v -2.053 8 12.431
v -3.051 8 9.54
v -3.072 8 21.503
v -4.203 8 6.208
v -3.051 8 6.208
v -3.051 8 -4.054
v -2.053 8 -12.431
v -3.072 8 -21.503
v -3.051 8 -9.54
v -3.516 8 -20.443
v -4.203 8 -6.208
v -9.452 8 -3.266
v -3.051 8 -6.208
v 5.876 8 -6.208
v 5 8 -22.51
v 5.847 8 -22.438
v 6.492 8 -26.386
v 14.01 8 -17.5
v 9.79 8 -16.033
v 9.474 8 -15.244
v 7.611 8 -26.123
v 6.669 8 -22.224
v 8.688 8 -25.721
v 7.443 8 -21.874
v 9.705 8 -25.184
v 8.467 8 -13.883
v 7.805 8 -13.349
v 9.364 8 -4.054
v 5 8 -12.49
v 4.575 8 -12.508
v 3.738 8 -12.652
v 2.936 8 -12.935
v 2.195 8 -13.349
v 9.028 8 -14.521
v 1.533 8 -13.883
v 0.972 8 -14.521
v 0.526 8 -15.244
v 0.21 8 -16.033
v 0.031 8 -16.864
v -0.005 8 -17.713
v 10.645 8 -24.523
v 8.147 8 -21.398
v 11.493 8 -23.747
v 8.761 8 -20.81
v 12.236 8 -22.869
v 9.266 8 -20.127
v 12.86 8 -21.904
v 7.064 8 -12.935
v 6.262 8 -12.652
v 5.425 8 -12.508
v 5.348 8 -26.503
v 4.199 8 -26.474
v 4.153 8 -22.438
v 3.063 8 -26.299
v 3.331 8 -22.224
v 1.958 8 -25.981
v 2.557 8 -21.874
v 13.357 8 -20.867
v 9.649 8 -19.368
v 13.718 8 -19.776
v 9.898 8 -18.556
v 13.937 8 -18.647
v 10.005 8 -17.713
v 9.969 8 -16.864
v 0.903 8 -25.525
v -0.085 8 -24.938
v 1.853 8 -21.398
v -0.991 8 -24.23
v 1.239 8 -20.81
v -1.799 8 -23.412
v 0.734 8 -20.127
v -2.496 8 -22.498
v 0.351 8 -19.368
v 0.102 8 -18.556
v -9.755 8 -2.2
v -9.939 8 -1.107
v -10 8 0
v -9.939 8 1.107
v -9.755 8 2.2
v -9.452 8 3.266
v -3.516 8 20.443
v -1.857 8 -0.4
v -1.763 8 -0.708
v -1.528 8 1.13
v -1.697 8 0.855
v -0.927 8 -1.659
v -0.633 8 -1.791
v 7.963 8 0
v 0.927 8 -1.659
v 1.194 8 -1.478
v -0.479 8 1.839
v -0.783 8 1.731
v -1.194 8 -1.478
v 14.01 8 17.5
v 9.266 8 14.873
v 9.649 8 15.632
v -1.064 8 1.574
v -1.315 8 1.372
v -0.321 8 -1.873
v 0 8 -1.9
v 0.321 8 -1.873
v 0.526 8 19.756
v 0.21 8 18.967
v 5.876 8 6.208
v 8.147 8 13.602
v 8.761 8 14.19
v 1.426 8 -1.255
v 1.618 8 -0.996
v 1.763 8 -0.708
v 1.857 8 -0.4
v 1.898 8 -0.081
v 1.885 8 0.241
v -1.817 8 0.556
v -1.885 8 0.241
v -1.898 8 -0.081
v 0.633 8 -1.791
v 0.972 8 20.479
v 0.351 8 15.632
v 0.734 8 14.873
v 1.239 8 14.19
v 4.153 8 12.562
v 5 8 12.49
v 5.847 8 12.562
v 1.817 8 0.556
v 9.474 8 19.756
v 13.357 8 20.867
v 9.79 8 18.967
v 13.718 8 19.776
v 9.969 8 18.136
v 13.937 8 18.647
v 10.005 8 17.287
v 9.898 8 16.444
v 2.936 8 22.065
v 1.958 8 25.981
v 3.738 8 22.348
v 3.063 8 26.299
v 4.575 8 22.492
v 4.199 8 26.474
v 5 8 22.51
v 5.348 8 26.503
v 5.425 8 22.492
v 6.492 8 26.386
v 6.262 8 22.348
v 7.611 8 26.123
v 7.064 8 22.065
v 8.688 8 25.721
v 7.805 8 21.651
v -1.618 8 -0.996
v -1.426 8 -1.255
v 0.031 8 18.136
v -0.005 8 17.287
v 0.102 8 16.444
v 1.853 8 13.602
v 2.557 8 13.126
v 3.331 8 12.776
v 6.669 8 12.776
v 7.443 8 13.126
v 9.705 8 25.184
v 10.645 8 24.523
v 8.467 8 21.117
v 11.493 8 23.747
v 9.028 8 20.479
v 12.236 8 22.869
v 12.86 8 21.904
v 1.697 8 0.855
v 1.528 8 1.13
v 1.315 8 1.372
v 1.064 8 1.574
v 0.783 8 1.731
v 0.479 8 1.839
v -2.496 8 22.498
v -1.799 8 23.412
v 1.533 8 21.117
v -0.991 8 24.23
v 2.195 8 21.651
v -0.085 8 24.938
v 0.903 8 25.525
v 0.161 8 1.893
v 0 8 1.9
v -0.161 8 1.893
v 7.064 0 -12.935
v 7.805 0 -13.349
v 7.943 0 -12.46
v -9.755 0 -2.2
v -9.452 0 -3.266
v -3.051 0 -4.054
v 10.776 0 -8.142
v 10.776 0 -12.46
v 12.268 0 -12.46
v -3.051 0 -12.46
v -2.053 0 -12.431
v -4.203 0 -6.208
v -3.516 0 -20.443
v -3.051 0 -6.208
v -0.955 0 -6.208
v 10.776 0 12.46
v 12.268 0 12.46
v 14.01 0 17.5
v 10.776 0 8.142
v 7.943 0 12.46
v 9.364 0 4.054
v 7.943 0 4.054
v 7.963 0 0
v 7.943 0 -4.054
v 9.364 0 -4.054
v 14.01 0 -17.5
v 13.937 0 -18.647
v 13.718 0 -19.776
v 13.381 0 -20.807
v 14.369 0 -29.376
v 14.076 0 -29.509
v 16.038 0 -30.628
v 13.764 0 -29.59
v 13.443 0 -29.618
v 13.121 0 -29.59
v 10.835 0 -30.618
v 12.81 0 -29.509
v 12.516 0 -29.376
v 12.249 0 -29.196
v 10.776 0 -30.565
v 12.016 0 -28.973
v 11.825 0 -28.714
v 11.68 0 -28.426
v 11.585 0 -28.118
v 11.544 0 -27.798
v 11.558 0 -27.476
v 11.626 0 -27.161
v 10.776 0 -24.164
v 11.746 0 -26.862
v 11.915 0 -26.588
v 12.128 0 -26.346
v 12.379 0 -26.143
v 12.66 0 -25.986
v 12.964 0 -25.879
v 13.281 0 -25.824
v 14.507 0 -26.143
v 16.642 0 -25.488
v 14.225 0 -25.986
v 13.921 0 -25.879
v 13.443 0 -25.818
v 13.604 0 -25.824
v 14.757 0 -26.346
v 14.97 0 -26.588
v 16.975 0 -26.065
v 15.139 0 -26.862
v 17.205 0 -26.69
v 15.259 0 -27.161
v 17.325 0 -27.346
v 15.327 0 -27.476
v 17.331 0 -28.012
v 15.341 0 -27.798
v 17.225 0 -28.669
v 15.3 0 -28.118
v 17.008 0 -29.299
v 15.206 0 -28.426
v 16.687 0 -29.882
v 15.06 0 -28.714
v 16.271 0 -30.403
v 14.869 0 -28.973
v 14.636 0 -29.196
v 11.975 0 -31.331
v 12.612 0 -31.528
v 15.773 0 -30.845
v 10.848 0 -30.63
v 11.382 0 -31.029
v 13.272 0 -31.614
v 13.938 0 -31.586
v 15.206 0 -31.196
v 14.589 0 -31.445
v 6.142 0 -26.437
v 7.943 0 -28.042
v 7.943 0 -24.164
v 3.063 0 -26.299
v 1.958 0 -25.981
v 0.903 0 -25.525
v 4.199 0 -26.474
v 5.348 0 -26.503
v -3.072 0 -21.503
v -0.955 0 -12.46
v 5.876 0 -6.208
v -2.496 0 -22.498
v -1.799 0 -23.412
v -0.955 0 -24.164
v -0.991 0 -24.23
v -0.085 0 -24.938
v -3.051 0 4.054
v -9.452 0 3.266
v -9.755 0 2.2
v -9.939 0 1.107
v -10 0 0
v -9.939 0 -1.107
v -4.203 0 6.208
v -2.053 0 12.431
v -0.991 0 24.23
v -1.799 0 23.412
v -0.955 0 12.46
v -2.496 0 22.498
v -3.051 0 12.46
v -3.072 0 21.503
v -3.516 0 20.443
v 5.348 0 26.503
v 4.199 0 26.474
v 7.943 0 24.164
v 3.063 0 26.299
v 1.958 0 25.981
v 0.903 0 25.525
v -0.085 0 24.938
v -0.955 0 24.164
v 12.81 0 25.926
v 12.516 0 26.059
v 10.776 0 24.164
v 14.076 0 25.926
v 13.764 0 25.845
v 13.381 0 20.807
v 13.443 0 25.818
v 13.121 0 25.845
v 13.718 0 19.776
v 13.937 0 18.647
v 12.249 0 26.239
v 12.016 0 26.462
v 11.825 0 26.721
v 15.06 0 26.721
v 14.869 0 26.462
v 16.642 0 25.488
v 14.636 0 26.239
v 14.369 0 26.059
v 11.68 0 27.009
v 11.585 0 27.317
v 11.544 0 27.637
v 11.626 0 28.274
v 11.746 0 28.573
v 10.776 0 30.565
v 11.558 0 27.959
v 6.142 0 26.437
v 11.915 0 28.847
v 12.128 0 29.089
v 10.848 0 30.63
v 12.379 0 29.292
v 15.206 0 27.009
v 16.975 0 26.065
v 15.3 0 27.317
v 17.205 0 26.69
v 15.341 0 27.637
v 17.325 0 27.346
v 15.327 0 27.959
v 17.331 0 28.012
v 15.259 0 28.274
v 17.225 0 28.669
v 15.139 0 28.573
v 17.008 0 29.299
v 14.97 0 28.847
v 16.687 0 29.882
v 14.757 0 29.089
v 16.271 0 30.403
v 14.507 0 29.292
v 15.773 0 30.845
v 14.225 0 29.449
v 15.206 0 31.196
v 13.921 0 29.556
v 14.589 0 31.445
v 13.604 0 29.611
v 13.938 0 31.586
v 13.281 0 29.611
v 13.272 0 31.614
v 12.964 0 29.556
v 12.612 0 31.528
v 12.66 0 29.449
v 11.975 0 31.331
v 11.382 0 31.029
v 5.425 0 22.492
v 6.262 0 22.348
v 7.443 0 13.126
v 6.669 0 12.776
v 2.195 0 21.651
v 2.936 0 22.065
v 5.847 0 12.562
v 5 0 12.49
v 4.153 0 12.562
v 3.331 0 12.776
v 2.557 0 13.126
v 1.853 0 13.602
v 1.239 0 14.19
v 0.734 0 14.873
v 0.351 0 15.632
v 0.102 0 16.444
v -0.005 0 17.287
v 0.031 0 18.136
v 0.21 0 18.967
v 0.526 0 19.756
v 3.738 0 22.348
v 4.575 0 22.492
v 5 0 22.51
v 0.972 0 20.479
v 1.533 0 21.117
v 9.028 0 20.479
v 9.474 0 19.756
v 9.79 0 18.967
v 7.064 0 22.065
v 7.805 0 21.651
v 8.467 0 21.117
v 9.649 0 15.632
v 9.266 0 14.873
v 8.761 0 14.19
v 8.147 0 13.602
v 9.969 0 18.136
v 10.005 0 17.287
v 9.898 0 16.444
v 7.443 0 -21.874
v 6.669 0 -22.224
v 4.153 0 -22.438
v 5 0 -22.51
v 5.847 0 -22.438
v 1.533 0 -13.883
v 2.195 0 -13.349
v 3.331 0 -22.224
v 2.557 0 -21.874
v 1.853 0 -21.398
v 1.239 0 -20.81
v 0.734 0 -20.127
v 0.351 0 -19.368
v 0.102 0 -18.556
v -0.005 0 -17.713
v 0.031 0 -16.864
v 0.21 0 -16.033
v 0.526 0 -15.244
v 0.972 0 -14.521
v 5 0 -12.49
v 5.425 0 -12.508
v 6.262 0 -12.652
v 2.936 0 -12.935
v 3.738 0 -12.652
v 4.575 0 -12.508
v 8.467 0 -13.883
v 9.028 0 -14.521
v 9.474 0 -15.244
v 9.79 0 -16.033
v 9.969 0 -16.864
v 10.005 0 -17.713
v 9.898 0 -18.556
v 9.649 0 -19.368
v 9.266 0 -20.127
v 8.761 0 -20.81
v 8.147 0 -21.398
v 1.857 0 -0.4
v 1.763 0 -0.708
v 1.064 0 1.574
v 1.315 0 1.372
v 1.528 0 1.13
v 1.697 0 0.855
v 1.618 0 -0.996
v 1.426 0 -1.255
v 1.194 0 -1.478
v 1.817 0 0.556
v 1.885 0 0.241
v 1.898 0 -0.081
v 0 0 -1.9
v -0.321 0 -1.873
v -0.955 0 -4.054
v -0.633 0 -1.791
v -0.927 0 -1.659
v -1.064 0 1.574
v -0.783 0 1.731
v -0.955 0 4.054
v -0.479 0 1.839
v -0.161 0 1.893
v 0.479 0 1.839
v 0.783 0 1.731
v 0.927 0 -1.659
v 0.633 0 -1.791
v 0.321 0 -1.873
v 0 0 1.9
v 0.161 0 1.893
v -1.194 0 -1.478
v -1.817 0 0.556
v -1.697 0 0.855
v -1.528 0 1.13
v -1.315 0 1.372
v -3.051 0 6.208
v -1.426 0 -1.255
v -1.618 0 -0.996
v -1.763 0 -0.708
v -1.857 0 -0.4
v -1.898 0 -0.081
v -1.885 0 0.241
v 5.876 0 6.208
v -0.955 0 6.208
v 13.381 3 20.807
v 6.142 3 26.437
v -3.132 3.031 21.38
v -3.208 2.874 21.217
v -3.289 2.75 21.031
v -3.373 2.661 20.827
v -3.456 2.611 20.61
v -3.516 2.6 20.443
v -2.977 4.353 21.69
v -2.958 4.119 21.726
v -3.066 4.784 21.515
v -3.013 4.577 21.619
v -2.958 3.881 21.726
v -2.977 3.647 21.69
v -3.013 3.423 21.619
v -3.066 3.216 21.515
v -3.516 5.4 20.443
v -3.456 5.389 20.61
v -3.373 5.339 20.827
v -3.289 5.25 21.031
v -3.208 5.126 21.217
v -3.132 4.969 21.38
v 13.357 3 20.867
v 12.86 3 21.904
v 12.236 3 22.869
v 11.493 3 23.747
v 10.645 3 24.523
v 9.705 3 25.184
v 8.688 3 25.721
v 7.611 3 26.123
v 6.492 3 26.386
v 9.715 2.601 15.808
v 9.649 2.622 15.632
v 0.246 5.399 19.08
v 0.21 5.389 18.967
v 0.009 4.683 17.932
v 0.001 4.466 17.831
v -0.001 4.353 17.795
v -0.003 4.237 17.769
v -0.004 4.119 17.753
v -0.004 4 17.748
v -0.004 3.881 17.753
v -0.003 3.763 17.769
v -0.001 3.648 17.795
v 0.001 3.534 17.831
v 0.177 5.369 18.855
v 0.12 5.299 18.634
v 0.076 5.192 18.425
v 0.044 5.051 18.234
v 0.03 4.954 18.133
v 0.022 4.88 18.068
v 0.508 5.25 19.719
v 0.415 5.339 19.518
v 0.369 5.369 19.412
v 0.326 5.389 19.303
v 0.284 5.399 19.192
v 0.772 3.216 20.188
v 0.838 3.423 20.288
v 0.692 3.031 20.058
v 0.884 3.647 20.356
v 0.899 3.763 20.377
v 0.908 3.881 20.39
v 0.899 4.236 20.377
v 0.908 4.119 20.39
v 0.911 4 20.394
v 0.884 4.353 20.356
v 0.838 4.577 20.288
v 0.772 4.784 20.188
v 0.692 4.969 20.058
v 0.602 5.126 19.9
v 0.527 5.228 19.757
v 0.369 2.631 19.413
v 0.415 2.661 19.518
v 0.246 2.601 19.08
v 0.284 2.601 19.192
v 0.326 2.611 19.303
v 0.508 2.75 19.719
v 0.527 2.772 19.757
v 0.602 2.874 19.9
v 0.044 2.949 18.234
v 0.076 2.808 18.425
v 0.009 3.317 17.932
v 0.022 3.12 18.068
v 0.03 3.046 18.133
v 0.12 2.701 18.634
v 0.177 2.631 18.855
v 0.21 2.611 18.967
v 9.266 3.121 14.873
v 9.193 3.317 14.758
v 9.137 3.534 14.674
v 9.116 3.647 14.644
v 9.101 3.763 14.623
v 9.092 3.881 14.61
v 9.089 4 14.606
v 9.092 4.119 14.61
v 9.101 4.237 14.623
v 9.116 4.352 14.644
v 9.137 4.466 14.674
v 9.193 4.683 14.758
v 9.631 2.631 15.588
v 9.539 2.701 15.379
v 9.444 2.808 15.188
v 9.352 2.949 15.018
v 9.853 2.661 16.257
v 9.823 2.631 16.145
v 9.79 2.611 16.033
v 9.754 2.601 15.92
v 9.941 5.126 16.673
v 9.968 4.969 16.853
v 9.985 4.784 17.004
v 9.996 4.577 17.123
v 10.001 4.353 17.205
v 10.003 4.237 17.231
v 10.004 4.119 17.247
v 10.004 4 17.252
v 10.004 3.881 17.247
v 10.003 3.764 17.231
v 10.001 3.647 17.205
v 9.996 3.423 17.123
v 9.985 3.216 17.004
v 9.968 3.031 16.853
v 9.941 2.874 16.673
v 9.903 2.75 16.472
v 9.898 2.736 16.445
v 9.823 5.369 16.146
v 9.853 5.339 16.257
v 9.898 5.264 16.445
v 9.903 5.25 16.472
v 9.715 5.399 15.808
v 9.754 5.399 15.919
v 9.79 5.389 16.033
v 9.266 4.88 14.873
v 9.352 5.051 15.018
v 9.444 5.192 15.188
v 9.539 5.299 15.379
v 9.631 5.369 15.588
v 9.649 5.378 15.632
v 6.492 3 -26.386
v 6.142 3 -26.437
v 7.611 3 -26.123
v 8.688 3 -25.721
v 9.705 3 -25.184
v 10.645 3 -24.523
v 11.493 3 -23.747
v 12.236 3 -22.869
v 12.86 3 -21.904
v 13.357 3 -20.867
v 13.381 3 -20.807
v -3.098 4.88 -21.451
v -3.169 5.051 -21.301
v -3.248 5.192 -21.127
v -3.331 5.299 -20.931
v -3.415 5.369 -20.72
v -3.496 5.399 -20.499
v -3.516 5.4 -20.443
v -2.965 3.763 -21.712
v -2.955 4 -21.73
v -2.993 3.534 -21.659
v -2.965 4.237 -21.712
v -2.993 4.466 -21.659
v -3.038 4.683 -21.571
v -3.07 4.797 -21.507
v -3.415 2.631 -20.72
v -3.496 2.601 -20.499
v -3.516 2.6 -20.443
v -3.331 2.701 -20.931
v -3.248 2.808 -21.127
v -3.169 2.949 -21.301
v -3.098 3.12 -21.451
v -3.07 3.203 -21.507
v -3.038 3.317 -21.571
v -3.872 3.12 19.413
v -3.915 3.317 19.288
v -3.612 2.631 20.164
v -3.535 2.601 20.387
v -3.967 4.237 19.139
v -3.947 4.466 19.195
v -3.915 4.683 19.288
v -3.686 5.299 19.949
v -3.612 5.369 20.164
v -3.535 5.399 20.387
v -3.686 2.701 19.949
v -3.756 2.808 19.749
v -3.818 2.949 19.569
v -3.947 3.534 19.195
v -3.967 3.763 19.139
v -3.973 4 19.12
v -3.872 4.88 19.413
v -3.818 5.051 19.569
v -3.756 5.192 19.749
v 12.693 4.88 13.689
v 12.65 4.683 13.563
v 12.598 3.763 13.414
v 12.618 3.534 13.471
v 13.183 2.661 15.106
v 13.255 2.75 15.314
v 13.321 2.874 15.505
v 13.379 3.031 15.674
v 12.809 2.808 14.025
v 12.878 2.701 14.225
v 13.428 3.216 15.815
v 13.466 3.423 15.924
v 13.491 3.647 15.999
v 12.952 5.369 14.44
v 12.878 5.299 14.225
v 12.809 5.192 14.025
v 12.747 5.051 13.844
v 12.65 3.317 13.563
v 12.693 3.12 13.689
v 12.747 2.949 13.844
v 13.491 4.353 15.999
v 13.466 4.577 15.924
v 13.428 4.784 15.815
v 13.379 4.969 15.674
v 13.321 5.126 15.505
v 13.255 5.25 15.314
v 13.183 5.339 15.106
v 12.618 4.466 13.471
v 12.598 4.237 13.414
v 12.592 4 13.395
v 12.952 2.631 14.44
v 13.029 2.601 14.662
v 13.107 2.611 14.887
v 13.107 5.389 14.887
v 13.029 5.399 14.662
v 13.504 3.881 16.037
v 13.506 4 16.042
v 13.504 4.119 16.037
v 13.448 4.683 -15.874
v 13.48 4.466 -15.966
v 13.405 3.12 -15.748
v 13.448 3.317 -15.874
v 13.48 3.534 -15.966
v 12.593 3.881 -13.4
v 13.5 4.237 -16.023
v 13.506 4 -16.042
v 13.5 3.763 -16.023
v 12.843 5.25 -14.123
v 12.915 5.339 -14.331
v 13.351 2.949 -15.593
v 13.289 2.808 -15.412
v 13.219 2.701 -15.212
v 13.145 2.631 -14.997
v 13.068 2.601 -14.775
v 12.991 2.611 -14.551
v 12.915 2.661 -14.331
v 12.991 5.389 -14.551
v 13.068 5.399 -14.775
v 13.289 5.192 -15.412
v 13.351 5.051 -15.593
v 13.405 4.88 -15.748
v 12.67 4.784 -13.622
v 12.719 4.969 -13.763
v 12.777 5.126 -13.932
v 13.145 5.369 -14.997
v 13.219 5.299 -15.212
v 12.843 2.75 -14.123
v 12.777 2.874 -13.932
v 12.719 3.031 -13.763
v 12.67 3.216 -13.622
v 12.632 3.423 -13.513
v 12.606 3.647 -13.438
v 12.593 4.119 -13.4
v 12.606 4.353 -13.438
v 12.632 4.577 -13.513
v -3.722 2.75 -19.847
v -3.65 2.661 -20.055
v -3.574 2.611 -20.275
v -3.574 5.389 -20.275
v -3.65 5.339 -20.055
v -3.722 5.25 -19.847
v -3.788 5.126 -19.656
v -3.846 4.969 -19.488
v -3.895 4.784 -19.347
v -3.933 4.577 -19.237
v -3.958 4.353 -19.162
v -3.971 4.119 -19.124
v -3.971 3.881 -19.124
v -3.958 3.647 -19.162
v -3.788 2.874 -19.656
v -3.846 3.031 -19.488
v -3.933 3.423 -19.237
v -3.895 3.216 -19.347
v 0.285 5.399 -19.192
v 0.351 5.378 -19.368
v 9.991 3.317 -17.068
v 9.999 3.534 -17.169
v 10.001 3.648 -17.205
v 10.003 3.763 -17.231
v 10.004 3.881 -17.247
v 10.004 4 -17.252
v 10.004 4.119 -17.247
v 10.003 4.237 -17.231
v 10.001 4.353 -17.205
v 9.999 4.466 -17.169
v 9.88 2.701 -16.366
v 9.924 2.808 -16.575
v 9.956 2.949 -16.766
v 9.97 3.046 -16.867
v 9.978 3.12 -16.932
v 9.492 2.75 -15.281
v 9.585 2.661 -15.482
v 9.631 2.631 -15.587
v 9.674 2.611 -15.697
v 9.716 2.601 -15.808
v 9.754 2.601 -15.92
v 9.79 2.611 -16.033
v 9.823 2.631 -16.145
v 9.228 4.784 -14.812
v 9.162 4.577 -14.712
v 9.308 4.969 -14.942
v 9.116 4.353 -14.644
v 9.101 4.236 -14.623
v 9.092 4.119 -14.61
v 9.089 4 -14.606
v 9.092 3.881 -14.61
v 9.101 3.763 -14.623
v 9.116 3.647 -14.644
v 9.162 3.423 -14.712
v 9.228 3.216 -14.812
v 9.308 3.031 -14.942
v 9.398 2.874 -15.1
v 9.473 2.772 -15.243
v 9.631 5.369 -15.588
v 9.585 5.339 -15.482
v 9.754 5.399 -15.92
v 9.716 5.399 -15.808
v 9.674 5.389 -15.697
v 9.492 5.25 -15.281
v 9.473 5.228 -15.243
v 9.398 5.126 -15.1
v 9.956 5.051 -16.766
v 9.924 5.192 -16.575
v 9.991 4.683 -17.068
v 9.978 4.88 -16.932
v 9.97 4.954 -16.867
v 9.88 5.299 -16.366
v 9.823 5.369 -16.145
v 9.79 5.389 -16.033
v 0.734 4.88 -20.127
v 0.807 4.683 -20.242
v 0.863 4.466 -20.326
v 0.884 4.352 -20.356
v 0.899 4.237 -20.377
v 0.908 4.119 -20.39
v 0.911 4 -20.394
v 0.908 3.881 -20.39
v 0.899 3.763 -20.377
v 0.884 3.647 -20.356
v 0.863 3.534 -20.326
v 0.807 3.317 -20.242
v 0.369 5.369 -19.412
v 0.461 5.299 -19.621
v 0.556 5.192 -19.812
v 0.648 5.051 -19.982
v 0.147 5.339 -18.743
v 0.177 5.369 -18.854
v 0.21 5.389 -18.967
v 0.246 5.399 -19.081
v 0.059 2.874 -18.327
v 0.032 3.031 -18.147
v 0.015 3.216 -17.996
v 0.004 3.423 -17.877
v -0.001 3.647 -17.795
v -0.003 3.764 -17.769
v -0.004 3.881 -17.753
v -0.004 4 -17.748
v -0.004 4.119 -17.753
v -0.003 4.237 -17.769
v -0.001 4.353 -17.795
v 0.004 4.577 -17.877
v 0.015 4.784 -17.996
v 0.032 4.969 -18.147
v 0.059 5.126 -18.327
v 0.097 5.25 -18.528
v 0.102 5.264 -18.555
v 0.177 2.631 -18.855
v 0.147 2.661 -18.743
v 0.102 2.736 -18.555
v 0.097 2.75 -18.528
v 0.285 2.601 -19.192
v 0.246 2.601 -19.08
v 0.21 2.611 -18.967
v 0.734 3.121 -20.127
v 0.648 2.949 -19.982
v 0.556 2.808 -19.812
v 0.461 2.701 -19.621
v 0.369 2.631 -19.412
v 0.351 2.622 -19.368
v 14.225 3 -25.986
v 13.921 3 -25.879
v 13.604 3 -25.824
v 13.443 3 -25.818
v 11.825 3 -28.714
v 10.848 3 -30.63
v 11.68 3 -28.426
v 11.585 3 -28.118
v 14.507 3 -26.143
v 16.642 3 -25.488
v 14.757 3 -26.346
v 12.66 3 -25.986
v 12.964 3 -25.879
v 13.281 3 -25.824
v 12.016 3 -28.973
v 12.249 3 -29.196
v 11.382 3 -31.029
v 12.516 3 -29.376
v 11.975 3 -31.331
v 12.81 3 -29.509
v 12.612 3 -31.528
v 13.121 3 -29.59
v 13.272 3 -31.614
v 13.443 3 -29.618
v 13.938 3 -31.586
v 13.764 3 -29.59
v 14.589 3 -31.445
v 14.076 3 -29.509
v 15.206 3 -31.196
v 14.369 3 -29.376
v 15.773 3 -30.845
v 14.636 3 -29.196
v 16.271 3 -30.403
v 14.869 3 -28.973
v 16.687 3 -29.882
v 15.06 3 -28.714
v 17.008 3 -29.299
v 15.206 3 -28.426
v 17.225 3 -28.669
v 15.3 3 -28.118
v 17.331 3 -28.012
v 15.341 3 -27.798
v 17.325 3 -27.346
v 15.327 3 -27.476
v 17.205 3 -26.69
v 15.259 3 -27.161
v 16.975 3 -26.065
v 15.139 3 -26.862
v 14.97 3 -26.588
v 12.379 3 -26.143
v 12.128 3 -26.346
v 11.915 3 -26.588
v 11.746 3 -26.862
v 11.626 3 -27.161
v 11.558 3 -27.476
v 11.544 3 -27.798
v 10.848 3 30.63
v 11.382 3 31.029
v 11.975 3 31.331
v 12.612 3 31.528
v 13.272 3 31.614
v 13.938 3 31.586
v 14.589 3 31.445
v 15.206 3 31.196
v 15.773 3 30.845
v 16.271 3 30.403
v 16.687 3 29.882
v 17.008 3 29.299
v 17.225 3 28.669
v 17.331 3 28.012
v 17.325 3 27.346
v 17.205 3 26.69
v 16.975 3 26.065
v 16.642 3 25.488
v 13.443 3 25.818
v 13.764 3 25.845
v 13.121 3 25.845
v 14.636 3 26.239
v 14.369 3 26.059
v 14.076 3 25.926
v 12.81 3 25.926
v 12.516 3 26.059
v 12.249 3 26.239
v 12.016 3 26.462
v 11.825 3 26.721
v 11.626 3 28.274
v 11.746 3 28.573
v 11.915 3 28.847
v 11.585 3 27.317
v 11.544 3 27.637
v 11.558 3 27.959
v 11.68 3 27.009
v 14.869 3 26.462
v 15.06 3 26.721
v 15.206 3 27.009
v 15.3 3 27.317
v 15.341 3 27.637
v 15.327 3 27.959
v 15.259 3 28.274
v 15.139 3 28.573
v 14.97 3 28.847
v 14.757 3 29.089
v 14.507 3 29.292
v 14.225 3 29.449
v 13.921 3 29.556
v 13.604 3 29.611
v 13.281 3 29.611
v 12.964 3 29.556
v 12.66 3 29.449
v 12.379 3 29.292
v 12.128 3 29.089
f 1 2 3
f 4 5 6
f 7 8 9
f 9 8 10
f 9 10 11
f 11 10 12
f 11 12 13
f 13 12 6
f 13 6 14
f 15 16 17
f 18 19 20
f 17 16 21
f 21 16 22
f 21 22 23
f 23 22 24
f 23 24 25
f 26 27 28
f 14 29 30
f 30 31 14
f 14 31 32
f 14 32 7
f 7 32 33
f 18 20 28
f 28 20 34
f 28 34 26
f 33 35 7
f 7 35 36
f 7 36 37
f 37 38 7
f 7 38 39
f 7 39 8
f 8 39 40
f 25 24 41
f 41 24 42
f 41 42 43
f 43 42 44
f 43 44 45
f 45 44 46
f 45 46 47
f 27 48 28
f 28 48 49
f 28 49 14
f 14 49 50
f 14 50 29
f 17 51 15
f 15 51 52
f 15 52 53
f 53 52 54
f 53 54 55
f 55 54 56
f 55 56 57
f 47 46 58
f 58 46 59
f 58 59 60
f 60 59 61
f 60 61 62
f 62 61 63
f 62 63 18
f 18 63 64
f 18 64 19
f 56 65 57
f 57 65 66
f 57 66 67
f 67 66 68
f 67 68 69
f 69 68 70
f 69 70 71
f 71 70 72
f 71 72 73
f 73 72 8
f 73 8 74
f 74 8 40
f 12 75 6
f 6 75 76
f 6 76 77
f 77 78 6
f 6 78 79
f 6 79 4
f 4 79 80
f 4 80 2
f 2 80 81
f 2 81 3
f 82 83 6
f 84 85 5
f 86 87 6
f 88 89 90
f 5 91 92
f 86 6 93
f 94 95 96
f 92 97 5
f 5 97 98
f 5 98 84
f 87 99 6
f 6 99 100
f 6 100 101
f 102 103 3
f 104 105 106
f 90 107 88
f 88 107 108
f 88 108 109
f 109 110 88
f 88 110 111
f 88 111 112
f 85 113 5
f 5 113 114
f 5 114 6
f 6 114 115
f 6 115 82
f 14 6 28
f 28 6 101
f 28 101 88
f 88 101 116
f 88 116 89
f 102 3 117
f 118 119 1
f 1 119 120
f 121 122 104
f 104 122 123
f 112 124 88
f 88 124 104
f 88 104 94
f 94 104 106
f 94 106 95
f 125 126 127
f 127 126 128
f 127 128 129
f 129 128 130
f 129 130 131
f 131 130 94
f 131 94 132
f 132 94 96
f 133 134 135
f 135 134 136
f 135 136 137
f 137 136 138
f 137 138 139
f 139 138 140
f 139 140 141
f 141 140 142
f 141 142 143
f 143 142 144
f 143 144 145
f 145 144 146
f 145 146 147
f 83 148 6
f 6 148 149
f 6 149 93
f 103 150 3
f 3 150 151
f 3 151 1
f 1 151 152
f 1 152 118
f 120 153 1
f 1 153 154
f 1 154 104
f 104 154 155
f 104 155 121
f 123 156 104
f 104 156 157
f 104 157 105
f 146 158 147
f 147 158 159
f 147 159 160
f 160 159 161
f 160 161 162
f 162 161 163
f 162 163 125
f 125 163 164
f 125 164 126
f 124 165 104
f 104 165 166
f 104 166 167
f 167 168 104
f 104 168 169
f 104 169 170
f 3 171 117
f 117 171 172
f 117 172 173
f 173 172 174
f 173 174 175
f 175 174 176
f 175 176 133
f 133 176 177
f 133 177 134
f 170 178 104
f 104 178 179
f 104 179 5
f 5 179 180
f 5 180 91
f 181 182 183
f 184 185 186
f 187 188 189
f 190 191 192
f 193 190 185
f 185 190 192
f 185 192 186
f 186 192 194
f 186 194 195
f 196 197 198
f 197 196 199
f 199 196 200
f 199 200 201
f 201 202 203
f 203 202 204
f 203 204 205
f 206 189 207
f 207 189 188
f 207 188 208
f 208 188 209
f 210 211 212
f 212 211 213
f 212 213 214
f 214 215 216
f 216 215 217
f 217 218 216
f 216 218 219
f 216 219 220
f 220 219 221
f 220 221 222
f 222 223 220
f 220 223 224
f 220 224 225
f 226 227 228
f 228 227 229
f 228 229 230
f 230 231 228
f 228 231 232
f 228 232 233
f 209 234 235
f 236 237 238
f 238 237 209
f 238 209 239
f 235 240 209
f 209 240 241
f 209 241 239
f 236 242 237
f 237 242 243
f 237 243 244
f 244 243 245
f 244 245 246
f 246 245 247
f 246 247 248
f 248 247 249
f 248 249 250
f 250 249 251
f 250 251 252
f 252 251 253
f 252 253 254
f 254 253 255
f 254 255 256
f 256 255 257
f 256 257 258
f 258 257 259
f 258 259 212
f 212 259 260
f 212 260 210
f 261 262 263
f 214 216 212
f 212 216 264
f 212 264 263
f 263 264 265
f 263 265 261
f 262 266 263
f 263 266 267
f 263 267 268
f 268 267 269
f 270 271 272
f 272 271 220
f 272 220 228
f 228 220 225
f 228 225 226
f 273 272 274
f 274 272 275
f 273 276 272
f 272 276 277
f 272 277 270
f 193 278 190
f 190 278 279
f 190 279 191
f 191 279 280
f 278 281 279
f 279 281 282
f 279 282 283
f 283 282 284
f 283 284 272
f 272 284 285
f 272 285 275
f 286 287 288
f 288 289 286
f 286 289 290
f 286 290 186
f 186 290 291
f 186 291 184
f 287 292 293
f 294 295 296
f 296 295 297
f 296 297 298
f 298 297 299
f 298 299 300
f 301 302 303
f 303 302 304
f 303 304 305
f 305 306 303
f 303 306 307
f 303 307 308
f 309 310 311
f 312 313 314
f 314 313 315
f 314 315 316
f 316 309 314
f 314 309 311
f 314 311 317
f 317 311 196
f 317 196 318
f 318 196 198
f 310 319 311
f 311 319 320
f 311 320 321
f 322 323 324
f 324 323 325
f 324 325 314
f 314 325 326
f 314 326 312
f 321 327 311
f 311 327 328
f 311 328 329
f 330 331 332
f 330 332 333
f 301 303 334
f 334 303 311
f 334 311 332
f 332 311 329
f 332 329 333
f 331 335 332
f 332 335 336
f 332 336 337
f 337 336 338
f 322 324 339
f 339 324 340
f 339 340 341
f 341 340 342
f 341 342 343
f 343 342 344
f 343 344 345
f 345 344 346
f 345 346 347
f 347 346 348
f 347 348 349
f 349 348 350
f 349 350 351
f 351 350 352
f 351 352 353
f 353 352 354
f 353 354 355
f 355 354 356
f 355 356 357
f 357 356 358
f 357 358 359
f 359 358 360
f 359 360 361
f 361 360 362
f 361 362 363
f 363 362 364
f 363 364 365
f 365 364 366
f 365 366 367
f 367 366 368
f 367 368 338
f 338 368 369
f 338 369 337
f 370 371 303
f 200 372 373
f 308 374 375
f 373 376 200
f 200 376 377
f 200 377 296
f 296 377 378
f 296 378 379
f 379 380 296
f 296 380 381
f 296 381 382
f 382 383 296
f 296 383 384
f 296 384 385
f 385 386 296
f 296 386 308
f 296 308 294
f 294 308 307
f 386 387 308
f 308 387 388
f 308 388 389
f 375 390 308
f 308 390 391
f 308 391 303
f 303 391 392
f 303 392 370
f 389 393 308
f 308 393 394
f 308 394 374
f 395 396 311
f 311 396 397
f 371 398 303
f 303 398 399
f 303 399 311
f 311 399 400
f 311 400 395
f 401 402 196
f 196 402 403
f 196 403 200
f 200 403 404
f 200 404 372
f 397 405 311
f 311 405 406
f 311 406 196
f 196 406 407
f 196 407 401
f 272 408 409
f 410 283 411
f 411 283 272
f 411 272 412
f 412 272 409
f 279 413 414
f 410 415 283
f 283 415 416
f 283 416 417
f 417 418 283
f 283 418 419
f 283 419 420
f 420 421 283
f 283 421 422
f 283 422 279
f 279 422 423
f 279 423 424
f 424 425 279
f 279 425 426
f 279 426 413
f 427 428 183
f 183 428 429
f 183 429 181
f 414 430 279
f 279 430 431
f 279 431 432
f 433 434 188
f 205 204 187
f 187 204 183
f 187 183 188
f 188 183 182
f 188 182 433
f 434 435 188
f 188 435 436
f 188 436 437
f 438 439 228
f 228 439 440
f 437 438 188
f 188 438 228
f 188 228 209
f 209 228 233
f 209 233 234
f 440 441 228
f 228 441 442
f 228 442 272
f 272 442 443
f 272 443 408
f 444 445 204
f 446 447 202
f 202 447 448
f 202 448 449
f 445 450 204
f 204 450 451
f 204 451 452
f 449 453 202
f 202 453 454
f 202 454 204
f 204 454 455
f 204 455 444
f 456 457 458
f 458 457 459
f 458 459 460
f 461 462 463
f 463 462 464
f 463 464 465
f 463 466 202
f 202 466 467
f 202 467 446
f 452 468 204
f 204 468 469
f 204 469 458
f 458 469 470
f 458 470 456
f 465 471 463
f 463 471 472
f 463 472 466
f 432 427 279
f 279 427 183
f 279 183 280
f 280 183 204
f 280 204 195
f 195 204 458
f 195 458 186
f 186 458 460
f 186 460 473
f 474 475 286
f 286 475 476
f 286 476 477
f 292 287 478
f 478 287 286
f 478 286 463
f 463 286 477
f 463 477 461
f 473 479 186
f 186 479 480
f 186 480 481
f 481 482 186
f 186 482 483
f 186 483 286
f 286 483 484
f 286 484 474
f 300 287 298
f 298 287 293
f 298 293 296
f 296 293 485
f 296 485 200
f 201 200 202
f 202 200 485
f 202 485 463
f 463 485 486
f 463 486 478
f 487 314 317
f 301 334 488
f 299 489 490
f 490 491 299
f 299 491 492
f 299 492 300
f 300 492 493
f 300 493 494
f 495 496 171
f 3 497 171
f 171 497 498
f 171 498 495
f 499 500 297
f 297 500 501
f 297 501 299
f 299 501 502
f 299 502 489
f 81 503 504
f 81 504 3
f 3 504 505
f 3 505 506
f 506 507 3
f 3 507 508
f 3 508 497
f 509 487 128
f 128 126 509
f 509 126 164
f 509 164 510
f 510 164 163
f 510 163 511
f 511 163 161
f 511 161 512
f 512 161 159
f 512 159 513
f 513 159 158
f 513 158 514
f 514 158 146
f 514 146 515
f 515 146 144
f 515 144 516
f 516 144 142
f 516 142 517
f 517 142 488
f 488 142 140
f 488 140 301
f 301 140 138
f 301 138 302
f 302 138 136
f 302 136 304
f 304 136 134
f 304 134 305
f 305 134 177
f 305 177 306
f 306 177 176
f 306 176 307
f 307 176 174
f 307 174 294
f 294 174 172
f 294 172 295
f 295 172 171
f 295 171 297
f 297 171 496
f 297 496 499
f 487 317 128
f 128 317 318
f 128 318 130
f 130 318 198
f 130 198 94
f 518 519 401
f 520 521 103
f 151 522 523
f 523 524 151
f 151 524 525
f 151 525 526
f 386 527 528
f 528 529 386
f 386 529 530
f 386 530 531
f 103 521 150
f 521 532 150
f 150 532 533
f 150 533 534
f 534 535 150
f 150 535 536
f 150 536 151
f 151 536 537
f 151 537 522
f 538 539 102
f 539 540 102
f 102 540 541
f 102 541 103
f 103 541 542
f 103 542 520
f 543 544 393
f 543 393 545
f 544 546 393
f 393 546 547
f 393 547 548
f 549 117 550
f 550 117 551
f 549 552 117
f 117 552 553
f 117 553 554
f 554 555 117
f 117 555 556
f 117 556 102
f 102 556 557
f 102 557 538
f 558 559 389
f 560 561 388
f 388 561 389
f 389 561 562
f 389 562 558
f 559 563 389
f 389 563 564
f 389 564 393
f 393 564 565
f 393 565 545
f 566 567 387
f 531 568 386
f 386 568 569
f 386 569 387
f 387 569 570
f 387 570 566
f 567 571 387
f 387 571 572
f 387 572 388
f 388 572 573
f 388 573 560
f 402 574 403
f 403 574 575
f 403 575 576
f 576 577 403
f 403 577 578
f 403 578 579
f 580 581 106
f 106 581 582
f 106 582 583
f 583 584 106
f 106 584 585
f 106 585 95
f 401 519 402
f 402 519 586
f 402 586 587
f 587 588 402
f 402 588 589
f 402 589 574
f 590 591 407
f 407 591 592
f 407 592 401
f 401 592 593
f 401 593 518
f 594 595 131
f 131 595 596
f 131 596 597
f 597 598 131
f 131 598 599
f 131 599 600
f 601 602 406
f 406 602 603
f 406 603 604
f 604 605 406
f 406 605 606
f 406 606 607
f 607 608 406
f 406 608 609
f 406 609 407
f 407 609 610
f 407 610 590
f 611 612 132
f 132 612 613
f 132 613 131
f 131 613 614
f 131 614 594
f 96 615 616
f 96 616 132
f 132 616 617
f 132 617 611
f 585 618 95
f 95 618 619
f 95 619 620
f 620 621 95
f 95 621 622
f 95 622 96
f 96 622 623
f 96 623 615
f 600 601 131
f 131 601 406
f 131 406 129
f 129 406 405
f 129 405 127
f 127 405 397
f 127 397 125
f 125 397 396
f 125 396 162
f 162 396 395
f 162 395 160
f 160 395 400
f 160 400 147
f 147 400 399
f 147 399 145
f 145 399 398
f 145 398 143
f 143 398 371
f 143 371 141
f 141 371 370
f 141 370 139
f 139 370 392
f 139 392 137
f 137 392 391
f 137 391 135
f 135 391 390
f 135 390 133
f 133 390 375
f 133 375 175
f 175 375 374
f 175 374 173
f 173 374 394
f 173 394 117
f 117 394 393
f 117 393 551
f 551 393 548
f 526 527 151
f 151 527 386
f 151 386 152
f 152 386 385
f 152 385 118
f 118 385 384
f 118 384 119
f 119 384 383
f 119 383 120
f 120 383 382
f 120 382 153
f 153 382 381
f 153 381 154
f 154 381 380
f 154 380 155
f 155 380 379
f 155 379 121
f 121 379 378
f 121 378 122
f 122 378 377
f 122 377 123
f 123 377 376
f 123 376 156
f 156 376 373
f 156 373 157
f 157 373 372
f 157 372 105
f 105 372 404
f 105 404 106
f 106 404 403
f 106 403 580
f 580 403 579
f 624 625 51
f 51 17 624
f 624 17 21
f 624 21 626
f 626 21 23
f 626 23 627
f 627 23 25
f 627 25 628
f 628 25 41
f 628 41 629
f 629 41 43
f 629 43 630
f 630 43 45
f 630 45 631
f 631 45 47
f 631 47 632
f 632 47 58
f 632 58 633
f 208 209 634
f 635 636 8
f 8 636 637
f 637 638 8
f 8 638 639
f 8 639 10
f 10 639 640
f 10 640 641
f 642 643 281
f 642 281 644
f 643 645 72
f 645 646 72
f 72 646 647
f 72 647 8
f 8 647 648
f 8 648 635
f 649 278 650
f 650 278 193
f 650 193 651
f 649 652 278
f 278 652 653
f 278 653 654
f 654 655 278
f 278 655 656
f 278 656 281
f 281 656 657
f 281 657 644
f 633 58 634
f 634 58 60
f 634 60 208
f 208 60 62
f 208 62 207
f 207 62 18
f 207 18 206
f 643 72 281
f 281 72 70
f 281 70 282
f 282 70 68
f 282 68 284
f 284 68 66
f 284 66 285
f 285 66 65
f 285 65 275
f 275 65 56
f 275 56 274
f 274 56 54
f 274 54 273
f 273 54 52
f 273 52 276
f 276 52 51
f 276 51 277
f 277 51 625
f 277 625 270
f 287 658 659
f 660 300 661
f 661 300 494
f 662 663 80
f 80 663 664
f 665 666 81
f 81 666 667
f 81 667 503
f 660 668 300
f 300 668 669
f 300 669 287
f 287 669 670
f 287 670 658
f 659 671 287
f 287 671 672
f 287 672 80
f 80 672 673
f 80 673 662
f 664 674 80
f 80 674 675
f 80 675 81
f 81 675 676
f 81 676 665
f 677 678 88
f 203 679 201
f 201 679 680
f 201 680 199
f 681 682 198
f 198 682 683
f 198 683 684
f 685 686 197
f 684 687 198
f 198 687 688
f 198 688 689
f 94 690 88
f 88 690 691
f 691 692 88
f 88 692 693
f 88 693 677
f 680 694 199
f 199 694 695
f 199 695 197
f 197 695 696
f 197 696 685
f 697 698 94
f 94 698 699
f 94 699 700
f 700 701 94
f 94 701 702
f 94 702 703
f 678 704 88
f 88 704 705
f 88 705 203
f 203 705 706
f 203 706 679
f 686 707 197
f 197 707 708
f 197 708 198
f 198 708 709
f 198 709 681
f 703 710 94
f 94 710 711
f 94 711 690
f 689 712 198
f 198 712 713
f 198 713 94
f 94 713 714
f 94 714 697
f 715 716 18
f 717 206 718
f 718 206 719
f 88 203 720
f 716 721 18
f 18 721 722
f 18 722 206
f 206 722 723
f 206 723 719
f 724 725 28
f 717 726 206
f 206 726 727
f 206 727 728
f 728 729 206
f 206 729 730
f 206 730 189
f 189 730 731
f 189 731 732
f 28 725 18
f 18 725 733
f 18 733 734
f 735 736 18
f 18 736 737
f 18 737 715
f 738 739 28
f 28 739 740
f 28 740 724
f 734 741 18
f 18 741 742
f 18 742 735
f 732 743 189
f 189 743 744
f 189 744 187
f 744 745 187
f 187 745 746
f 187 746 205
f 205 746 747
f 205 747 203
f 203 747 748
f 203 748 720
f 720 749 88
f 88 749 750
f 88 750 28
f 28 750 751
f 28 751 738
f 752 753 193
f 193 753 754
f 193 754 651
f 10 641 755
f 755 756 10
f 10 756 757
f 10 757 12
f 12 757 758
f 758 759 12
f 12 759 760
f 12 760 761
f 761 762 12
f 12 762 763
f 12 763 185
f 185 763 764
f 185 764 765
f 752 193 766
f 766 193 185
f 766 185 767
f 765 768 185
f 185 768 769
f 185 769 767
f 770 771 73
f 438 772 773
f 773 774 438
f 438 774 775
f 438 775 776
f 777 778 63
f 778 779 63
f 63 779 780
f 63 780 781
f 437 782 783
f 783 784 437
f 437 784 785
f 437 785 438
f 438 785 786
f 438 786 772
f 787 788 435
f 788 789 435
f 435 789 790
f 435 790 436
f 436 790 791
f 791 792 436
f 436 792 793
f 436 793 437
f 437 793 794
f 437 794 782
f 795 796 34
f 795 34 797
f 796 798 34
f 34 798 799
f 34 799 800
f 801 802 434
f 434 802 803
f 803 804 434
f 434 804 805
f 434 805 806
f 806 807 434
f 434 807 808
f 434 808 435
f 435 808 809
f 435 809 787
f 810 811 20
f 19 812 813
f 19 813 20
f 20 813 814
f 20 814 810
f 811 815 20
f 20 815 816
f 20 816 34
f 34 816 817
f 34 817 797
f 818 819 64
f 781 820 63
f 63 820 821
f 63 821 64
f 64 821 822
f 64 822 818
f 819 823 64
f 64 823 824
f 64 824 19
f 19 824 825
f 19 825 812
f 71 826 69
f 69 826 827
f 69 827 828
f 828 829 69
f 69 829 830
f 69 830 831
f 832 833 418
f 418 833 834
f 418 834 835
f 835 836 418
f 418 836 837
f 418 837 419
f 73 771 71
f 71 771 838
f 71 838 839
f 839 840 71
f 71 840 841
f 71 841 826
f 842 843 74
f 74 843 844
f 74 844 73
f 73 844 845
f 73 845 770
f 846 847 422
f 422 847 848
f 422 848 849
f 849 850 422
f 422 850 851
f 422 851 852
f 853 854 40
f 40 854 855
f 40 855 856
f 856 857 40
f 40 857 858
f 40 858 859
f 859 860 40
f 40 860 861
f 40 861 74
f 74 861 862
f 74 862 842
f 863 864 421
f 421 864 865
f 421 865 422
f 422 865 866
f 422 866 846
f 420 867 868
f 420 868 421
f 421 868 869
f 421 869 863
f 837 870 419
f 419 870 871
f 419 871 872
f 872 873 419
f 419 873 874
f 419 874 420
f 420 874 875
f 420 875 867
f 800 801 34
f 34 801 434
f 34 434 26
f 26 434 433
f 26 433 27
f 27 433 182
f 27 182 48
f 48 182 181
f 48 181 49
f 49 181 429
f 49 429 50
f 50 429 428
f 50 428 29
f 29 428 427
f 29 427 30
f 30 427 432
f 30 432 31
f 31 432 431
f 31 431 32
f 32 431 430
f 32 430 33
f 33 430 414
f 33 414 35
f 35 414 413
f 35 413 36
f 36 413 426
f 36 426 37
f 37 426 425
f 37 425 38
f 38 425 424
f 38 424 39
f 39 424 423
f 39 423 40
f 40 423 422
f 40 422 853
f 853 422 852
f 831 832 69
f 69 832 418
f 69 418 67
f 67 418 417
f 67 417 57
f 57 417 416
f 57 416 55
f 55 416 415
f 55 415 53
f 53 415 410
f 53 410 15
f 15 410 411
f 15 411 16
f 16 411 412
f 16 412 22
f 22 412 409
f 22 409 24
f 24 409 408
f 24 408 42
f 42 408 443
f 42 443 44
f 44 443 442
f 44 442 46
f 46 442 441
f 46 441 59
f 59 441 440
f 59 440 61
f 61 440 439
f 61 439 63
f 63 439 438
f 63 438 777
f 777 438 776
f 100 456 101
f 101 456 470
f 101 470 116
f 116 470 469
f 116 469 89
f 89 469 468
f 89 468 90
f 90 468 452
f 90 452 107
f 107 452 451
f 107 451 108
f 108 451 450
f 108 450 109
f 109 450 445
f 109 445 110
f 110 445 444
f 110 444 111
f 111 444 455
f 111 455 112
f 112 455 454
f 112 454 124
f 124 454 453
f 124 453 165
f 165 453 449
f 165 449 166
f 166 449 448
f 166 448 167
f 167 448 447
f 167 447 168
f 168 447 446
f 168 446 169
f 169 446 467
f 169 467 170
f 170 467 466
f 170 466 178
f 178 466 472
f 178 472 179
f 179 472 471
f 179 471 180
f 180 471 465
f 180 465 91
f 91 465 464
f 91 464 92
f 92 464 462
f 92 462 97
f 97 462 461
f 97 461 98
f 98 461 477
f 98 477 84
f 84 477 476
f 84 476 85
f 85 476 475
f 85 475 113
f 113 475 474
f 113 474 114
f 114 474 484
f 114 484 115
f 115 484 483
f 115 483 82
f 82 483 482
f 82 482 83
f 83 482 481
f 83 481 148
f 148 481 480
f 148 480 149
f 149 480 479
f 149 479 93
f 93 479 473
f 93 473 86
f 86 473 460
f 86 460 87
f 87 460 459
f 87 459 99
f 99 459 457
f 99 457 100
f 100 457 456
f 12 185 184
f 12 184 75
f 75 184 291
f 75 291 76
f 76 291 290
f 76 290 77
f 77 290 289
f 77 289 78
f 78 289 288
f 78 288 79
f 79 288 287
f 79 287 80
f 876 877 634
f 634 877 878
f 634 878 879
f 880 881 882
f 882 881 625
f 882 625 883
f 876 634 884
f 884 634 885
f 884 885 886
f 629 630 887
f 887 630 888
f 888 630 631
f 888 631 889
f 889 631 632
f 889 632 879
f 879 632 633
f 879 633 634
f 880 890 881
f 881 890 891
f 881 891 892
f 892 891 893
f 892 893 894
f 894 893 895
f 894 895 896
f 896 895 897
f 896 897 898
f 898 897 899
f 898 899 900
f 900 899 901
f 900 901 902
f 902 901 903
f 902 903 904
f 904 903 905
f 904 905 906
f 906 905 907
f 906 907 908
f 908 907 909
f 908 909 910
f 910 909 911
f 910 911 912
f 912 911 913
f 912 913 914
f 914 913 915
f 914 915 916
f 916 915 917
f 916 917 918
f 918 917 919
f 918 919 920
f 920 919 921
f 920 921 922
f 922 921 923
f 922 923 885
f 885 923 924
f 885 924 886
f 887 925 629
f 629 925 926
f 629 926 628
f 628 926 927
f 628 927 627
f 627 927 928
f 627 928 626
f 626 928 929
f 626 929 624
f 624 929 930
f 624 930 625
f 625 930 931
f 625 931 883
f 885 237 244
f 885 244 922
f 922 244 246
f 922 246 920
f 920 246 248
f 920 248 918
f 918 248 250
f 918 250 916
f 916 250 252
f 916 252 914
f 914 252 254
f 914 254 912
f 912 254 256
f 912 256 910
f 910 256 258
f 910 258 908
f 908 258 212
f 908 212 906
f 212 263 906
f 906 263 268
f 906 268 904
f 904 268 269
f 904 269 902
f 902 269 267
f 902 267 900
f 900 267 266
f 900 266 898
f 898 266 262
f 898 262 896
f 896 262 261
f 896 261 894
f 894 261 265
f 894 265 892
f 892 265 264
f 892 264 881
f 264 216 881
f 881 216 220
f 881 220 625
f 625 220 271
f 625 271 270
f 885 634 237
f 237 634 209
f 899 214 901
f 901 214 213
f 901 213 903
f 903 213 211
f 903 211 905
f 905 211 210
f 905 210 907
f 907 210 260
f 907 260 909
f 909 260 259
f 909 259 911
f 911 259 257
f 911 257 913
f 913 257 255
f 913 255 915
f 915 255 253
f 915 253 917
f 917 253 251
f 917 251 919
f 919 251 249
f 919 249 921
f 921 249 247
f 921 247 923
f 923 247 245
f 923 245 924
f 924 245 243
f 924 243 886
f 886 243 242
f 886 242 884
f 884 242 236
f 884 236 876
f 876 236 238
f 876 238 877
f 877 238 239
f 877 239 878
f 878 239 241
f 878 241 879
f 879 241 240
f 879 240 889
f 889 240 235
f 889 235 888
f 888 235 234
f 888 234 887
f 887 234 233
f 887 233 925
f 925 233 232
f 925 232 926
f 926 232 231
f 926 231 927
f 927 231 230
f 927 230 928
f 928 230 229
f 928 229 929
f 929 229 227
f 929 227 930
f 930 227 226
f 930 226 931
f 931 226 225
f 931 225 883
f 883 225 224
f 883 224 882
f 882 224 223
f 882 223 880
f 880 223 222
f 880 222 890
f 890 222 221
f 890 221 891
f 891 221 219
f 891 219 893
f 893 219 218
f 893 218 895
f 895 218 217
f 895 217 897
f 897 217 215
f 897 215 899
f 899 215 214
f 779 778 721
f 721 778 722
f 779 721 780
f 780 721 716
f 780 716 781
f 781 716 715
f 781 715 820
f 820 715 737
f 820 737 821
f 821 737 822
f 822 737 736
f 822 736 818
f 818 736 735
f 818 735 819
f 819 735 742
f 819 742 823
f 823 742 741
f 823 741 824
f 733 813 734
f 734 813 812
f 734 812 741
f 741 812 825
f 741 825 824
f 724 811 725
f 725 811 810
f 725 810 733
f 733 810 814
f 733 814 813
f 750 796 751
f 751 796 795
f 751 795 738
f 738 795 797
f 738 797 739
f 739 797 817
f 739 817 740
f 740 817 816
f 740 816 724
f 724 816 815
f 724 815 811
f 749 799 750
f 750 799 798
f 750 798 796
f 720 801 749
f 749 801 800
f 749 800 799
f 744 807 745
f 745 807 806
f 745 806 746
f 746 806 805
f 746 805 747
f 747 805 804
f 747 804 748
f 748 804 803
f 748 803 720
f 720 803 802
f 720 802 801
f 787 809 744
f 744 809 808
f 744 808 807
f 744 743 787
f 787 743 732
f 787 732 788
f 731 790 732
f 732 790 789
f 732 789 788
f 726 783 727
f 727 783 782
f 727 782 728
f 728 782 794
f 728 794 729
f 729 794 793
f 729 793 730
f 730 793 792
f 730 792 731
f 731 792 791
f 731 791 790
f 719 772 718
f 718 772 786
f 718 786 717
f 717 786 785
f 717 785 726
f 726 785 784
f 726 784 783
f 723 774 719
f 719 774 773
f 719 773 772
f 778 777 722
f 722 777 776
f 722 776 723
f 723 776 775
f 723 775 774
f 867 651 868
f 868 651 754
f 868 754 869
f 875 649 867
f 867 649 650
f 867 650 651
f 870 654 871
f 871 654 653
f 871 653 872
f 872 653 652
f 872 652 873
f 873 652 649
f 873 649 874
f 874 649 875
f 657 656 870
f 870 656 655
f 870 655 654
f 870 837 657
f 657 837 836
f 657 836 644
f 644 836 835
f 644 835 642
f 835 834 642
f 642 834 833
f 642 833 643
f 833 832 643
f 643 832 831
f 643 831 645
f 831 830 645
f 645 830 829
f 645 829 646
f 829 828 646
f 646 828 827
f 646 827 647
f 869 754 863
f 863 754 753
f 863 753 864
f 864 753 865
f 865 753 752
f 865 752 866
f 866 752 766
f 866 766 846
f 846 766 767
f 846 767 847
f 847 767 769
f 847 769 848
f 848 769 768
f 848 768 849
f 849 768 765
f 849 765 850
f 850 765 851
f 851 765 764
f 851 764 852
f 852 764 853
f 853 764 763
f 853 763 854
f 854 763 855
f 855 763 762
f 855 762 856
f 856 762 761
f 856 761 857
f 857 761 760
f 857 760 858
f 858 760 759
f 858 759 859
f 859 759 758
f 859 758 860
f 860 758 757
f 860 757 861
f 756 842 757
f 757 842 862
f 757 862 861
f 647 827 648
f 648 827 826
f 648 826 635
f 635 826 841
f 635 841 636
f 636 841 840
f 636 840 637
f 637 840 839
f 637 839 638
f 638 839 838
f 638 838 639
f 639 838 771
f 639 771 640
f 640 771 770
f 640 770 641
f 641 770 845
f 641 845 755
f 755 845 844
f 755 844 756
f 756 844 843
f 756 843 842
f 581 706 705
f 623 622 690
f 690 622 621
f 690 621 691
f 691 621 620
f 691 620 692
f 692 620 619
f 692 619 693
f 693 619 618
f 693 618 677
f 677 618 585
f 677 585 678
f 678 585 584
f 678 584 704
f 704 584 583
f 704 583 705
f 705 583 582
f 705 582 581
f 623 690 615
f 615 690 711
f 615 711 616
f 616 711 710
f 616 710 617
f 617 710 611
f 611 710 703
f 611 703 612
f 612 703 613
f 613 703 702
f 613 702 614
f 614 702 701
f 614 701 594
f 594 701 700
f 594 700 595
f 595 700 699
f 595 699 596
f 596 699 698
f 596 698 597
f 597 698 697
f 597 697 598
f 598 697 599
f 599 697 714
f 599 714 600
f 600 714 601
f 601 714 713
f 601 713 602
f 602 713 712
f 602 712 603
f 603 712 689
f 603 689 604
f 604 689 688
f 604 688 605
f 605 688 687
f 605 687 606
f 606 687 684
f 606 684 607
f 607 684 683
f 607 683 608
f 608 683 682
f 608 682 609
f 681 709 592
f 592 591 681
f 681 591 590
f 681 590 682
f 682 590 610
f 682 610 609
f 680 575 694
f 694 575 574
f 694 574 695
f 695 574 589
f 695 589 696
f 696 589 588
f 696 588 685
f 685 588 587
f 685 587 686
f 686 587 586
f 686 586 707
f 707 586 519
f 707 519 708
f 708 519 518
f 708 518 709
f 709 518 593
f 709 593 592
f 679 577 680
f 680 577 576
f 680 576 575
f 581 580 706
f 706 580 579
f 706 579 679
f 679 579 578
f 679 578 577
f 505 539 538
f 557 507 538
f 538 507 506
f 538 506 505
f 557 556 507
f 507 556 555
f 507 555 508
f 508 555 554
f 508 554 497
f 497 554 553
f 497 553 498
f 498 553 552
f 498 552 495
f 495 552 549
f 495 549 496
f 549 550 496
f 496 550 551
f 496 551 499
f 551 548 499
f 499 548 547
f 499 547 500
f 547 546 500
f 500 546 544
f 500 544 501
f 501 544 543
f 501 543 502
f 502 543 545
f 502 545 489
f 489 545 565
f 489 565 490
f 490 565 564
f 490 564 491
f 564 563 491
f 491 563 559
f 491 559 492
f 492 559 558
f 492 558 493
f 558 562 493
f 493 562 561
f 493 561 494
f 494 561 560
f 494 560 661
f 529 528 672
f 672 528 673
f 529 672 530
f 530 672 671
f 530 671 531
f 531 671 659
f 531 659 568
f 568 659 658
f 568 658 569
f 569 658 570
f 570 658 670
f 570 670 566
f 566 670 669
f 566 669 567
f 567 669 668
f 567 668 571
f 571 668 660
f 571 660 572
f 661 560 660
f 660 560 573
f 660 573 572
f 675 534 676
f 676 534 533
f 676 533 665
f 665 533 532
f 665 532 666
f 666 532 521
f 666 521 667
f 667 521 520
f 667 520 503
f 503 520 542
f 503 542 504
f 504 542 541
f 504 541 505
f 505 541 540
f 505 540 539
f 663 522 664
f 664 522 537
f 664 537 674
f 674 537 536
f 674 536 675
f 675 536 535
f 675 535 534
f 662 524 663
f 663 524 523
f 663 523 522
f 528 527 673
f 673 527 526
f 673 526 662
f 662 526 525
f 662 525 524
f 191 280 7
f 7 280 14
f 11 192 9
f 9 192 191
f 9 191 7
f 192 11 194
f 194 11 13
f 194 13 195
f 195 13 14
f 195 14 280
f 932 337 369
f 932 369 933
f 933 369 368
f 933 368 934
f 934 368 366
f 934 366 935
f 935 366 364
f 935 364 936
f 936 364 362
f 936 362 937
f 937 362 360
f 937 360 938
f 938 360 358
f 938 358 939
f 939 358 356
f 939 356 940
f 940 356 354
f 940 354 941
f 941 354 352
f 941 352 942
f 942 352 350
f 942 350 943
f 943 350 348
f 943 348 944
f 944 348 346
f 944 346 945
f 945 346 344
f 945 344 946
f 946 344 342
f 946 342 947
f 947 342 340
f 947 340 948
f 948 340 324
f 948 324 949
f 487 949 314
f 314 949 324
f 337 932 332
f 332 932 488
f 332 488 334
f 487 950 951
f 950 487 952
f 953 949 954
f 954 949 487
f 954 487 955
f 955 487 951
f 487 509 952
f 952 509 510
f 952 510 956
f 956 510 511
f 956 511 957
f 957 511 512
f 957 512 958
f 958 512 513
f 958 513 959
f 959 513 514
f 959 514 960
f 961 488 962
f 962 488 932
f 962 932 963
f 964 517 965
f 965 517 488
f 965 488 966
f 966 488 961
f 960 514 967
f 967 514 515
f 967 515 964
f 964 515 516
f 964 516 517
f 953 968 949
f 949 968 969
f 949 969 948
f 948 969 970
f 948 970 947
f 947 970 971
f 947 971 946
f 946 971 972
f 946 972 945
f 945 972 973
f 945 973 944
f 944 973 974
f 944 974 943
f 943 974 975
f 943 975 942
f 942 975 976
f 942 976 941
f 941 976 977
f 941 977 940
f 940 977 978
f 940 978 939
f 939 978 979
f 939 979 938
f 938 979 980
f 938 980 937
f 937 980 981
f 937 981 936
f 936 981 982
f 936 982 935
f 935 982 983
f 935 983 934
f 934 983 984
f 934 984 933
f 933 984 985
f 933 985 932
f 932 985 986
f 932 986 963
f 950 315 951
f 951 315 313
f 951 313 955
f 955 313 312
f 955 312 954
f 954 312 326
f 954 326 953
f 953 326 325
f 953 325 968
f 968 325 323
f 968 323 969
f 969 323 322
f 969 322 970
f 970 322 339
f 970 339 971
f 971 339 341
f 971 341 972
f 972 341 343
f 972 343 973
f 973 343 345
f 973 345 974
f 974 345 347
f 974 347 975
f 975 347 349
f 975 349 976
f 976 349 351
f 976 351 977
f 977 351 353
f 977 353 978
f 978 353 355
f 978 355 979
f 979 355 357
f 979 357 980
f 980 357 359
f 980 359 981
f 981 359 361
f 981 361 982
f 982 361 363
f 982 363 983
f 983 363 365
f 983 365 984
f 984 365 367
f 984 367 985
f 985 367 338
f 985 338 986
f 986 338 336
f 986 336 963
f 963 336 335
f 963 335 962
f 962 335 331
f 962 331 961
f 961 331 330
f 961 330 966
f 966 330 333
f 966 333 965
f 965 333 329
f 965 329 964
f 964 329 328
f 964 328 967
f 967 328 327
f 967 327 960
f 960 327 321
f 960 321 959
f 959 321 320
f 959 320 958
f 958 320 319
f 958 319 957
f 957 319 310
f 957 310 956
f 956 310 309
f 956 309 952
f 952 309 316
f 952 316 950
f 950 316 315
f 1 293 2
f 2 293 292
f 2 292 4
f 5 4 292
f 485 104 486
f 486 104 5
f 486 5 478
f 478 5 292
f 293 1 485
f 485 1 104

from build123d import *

# Parameters (mm, degrees)
SKETCH1_R               = 1.9
SKETCH1_R_2             = 5.01
BOSS_EXTRUDE1_DEPTH     = 8
SKETCH2_R               = 1.9
BOSS_EXTRUDE2_DEPTH     = 3
SKETCH3_R               = 1.4
CUT_EXTRUDE1_DEPTH      = 22
CUT_EXTRUDE3_DEPTH      = 8
MIRROR3_COPY_1_SKETCH_R = 1.4
MIRROR3_COPY_1_DEPTH    = 22


with BuildPart() as part:
    # Sketch1 → Boss-Extrude1 (new body)
    with BuildSketch(Plane(origin=(0, 0, 0), x_dir=(1, 0, 0), z_dir=(0, 1, 0))):
        with BuildLine():
            Line((-9.451570228, 3.266162922), (-3.515864775, 20.442812793))
            ThreePointArc((-3.515864775, 20.442812793), (6.49200509, 26.385607509), (14.01, 17.5))
            Line((14.01, 17.5), (7.962554998, 0))
            Line((7.962554998, 0), (14.01, -17.5))
            ThreePointArc((14.01, -17.5), (6.49200509, -26.385607509), (-3.515864775, -20.442812793))
            Line((-3.515864775, -20.442812793), (-9.451570228, -3.266162922))
            ThreePointArc((-9.451570228, -3.266162922), (-10, 0), (-9.451570228, 3.266162922))
        make_face()
        with Locations(Location((0, 0, 0), (0, 0, 270))):
            Circle(SKETCH1_R, mode=Mode.SUBTRACT)
        with Locations(Location((5, 17.5, 0), (0, 0, 270))):
            Circle(SKETCH1_R_2, mode=Mode.SUBTRACT)
        with Locations(Location((5, -17.5, 0), (0, 0, 270))):
            Circle(SKETCH1_R_2, mode=Mode.SUBTRACT)
    extrude(amount=BOSS_EXTRUDE1_DEPTH)

    # Sketch2 → Boss-Extrude2 (add)
    with BuildSketch(Plane(origin=(0, 0, 0), x_dir=(1, 0, 0), z_dir=(0, 1, 0))):
        with BuildLine():
            Line((13.381079467, 20.80720531), (16.642446553, 25.488071975))
            ThreePointArc((16.642446553, 25.488071975), (16.031174239, 30.634605863), (10.84846826, 30.629744064))
            Line((10.84846826, 30.629744064), (6.141997733, 26.43733412))
            Line((6.141997733, 26.43733412), (13.381079467, 20.80720531))
        make_face()
        with Locations(Location((13.442555379, 27.717577856, 0), (0, 0, 270))):
            Circle(SKETCH2_R, mode=Mode.SUBTRACT)
    boss_extrude2 = extrude(amount=BOSS_EXTRUDE2_DEPTH)

    # Sketch3 → Cut-Extrude1 (cut)
    with BuildSketch(Plane(origin=(7.113123944, 0, 2.458070049), x_dir=(0.3266162922151865, 0, -0.9451570227531528), z_dir=(0.9451570227531528, 0, 0.3266162922151865))):
        with Locations((18.173329359, 4)):
            Circle(SKETCH3_R)
    cut_extrude1 = extrude(amount=-CUT_EXTRUDE1_DEPTH, mode=Mode.SUBTRACT)

    # Mirror1: Cut-Extrude1 across plane
    add(cut_extrude1.mirror(Plane.XY), mode=Mode.SUBTRACT)

    # Sketch5 → Cut-Extrude3 (cut)
    with BuildSketch(Plane(origin=(0, 0, 0), x_dir=(1, 0, 0), z_dir=(0, 1, 0))):
        Polygon((-2.052506292, 12.430669751), (-4.202841327, 6.208064486), (5.87576418, 6.208064486), align=None)
    cut_extrude3 = extrude(amount=CUT_EXTRUDE3_DEPTH, mode=Mode.SUBTRACT)

    # Mirror3: Boss-Extrude2, Cut-Extrude1, Cut-Extrude3 across plane
    add(boss_extrude2.mirror(Plane.XY))
    add(cut_extrude1.mirror(Plane.XY), mode=Mode.SUBTRACT)
    add(cut_extrude3.mirror(Plane.XY), mode=Mode.SUBTRACT)

    # Mirror3 copy 1 sketch → Mirror3 copy 1 (cut)
    with BuildSketch(Plane(origin=(7.113123944, 0, 2.458070049), x_dir=(0.3266162922151865, 0, -0.9451570227531528), z_dir=(0.9451570227531528, 0, 0.3266162922151865))):
        with Locations((18.173329359, 4)):
            Circle(MIRROR3_COPY_1_SKETCH_R)
    extrude(amount=-MIRROR3_COPY_1_DEPTH, mode=Mode.SUBTRACT)


solid = part.part
